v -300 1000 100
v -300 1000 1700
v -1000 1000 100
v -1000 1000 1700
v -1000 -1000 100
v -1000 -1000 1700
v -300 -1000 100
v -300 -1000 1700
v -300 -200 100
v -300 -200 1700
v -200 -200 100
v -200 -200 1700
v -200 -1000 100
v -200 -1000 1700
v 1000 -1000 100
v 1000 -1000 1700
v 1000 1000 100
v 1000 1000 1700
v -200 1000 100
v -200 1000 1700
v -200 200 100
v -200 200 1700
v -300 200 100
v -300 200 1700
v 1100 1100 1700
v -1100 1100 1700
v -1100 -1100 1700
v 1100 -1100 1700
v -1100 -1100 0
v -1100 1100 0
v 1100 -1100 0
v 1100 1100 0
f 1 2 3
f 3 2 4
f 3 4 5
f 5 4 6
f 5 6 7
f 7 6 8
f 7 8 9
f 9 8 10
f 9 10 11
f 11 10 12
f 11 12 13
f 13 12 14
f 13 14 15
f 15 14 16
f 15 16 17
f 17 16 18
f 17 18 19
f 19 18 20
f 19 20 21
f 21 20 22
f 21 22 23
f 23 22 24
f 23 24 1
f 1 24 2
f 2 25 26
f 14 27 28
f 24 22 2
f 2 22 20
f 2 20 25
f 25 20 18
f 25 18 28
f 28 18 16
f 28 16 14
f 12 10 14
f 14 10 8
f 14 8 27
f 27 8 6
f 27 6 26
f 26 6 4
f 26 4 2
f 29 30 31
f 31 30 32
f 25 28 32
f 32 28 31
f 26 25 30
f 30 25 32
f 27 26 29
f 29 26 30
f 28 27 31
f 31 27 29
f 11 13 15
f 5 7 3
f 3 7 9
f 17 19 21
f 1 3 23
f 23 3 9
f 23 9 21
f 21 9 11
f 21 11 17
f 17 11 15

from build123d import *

# Parameters (mm, degrees)
SKETCH1_W           = 2200
SKETCH1_H           = 2200
BOSS_EXTRUDE1_DEPTH = 1700
SKETCH2_W           = 2200
SKETCH2_H           = 2200
BOSS_EXTRUDE2_DEPTH = 100


with BuildPart() as part:
    # Sketch1 → Boss-Extrude1 (new body)
    with BuildSketch(Plane.XY):
        Rectangle(SKETCH1_W, SKETCH1_H)
        Polygon((1000, -1000), (-200, -1000), (-200, -200), (-300, -200), (-300, -1000), (-1000, -1000), (-1000, 1000), (-300, 1000), (-300, 200), (-200, 200), (-200, 1000), (1000, 1000), align=None, mode=Mode.SUBTRACT)
    extrude(amount=BOSS_EXTRUDE1_DEPTH)

    # Sketch2 → Boss-Extrude2 (add)
    with BuildSketch(Plane(origin=(0, 0, 0), x_dir=(-1, 0, 0), z_dir=(0, 0, -1))):
        Rectangle(SKETCH2_W, SKETCH2_H)
    extrude(amount=-BOSS_EXTRUDE2_DEPTH)


solid = part.part
